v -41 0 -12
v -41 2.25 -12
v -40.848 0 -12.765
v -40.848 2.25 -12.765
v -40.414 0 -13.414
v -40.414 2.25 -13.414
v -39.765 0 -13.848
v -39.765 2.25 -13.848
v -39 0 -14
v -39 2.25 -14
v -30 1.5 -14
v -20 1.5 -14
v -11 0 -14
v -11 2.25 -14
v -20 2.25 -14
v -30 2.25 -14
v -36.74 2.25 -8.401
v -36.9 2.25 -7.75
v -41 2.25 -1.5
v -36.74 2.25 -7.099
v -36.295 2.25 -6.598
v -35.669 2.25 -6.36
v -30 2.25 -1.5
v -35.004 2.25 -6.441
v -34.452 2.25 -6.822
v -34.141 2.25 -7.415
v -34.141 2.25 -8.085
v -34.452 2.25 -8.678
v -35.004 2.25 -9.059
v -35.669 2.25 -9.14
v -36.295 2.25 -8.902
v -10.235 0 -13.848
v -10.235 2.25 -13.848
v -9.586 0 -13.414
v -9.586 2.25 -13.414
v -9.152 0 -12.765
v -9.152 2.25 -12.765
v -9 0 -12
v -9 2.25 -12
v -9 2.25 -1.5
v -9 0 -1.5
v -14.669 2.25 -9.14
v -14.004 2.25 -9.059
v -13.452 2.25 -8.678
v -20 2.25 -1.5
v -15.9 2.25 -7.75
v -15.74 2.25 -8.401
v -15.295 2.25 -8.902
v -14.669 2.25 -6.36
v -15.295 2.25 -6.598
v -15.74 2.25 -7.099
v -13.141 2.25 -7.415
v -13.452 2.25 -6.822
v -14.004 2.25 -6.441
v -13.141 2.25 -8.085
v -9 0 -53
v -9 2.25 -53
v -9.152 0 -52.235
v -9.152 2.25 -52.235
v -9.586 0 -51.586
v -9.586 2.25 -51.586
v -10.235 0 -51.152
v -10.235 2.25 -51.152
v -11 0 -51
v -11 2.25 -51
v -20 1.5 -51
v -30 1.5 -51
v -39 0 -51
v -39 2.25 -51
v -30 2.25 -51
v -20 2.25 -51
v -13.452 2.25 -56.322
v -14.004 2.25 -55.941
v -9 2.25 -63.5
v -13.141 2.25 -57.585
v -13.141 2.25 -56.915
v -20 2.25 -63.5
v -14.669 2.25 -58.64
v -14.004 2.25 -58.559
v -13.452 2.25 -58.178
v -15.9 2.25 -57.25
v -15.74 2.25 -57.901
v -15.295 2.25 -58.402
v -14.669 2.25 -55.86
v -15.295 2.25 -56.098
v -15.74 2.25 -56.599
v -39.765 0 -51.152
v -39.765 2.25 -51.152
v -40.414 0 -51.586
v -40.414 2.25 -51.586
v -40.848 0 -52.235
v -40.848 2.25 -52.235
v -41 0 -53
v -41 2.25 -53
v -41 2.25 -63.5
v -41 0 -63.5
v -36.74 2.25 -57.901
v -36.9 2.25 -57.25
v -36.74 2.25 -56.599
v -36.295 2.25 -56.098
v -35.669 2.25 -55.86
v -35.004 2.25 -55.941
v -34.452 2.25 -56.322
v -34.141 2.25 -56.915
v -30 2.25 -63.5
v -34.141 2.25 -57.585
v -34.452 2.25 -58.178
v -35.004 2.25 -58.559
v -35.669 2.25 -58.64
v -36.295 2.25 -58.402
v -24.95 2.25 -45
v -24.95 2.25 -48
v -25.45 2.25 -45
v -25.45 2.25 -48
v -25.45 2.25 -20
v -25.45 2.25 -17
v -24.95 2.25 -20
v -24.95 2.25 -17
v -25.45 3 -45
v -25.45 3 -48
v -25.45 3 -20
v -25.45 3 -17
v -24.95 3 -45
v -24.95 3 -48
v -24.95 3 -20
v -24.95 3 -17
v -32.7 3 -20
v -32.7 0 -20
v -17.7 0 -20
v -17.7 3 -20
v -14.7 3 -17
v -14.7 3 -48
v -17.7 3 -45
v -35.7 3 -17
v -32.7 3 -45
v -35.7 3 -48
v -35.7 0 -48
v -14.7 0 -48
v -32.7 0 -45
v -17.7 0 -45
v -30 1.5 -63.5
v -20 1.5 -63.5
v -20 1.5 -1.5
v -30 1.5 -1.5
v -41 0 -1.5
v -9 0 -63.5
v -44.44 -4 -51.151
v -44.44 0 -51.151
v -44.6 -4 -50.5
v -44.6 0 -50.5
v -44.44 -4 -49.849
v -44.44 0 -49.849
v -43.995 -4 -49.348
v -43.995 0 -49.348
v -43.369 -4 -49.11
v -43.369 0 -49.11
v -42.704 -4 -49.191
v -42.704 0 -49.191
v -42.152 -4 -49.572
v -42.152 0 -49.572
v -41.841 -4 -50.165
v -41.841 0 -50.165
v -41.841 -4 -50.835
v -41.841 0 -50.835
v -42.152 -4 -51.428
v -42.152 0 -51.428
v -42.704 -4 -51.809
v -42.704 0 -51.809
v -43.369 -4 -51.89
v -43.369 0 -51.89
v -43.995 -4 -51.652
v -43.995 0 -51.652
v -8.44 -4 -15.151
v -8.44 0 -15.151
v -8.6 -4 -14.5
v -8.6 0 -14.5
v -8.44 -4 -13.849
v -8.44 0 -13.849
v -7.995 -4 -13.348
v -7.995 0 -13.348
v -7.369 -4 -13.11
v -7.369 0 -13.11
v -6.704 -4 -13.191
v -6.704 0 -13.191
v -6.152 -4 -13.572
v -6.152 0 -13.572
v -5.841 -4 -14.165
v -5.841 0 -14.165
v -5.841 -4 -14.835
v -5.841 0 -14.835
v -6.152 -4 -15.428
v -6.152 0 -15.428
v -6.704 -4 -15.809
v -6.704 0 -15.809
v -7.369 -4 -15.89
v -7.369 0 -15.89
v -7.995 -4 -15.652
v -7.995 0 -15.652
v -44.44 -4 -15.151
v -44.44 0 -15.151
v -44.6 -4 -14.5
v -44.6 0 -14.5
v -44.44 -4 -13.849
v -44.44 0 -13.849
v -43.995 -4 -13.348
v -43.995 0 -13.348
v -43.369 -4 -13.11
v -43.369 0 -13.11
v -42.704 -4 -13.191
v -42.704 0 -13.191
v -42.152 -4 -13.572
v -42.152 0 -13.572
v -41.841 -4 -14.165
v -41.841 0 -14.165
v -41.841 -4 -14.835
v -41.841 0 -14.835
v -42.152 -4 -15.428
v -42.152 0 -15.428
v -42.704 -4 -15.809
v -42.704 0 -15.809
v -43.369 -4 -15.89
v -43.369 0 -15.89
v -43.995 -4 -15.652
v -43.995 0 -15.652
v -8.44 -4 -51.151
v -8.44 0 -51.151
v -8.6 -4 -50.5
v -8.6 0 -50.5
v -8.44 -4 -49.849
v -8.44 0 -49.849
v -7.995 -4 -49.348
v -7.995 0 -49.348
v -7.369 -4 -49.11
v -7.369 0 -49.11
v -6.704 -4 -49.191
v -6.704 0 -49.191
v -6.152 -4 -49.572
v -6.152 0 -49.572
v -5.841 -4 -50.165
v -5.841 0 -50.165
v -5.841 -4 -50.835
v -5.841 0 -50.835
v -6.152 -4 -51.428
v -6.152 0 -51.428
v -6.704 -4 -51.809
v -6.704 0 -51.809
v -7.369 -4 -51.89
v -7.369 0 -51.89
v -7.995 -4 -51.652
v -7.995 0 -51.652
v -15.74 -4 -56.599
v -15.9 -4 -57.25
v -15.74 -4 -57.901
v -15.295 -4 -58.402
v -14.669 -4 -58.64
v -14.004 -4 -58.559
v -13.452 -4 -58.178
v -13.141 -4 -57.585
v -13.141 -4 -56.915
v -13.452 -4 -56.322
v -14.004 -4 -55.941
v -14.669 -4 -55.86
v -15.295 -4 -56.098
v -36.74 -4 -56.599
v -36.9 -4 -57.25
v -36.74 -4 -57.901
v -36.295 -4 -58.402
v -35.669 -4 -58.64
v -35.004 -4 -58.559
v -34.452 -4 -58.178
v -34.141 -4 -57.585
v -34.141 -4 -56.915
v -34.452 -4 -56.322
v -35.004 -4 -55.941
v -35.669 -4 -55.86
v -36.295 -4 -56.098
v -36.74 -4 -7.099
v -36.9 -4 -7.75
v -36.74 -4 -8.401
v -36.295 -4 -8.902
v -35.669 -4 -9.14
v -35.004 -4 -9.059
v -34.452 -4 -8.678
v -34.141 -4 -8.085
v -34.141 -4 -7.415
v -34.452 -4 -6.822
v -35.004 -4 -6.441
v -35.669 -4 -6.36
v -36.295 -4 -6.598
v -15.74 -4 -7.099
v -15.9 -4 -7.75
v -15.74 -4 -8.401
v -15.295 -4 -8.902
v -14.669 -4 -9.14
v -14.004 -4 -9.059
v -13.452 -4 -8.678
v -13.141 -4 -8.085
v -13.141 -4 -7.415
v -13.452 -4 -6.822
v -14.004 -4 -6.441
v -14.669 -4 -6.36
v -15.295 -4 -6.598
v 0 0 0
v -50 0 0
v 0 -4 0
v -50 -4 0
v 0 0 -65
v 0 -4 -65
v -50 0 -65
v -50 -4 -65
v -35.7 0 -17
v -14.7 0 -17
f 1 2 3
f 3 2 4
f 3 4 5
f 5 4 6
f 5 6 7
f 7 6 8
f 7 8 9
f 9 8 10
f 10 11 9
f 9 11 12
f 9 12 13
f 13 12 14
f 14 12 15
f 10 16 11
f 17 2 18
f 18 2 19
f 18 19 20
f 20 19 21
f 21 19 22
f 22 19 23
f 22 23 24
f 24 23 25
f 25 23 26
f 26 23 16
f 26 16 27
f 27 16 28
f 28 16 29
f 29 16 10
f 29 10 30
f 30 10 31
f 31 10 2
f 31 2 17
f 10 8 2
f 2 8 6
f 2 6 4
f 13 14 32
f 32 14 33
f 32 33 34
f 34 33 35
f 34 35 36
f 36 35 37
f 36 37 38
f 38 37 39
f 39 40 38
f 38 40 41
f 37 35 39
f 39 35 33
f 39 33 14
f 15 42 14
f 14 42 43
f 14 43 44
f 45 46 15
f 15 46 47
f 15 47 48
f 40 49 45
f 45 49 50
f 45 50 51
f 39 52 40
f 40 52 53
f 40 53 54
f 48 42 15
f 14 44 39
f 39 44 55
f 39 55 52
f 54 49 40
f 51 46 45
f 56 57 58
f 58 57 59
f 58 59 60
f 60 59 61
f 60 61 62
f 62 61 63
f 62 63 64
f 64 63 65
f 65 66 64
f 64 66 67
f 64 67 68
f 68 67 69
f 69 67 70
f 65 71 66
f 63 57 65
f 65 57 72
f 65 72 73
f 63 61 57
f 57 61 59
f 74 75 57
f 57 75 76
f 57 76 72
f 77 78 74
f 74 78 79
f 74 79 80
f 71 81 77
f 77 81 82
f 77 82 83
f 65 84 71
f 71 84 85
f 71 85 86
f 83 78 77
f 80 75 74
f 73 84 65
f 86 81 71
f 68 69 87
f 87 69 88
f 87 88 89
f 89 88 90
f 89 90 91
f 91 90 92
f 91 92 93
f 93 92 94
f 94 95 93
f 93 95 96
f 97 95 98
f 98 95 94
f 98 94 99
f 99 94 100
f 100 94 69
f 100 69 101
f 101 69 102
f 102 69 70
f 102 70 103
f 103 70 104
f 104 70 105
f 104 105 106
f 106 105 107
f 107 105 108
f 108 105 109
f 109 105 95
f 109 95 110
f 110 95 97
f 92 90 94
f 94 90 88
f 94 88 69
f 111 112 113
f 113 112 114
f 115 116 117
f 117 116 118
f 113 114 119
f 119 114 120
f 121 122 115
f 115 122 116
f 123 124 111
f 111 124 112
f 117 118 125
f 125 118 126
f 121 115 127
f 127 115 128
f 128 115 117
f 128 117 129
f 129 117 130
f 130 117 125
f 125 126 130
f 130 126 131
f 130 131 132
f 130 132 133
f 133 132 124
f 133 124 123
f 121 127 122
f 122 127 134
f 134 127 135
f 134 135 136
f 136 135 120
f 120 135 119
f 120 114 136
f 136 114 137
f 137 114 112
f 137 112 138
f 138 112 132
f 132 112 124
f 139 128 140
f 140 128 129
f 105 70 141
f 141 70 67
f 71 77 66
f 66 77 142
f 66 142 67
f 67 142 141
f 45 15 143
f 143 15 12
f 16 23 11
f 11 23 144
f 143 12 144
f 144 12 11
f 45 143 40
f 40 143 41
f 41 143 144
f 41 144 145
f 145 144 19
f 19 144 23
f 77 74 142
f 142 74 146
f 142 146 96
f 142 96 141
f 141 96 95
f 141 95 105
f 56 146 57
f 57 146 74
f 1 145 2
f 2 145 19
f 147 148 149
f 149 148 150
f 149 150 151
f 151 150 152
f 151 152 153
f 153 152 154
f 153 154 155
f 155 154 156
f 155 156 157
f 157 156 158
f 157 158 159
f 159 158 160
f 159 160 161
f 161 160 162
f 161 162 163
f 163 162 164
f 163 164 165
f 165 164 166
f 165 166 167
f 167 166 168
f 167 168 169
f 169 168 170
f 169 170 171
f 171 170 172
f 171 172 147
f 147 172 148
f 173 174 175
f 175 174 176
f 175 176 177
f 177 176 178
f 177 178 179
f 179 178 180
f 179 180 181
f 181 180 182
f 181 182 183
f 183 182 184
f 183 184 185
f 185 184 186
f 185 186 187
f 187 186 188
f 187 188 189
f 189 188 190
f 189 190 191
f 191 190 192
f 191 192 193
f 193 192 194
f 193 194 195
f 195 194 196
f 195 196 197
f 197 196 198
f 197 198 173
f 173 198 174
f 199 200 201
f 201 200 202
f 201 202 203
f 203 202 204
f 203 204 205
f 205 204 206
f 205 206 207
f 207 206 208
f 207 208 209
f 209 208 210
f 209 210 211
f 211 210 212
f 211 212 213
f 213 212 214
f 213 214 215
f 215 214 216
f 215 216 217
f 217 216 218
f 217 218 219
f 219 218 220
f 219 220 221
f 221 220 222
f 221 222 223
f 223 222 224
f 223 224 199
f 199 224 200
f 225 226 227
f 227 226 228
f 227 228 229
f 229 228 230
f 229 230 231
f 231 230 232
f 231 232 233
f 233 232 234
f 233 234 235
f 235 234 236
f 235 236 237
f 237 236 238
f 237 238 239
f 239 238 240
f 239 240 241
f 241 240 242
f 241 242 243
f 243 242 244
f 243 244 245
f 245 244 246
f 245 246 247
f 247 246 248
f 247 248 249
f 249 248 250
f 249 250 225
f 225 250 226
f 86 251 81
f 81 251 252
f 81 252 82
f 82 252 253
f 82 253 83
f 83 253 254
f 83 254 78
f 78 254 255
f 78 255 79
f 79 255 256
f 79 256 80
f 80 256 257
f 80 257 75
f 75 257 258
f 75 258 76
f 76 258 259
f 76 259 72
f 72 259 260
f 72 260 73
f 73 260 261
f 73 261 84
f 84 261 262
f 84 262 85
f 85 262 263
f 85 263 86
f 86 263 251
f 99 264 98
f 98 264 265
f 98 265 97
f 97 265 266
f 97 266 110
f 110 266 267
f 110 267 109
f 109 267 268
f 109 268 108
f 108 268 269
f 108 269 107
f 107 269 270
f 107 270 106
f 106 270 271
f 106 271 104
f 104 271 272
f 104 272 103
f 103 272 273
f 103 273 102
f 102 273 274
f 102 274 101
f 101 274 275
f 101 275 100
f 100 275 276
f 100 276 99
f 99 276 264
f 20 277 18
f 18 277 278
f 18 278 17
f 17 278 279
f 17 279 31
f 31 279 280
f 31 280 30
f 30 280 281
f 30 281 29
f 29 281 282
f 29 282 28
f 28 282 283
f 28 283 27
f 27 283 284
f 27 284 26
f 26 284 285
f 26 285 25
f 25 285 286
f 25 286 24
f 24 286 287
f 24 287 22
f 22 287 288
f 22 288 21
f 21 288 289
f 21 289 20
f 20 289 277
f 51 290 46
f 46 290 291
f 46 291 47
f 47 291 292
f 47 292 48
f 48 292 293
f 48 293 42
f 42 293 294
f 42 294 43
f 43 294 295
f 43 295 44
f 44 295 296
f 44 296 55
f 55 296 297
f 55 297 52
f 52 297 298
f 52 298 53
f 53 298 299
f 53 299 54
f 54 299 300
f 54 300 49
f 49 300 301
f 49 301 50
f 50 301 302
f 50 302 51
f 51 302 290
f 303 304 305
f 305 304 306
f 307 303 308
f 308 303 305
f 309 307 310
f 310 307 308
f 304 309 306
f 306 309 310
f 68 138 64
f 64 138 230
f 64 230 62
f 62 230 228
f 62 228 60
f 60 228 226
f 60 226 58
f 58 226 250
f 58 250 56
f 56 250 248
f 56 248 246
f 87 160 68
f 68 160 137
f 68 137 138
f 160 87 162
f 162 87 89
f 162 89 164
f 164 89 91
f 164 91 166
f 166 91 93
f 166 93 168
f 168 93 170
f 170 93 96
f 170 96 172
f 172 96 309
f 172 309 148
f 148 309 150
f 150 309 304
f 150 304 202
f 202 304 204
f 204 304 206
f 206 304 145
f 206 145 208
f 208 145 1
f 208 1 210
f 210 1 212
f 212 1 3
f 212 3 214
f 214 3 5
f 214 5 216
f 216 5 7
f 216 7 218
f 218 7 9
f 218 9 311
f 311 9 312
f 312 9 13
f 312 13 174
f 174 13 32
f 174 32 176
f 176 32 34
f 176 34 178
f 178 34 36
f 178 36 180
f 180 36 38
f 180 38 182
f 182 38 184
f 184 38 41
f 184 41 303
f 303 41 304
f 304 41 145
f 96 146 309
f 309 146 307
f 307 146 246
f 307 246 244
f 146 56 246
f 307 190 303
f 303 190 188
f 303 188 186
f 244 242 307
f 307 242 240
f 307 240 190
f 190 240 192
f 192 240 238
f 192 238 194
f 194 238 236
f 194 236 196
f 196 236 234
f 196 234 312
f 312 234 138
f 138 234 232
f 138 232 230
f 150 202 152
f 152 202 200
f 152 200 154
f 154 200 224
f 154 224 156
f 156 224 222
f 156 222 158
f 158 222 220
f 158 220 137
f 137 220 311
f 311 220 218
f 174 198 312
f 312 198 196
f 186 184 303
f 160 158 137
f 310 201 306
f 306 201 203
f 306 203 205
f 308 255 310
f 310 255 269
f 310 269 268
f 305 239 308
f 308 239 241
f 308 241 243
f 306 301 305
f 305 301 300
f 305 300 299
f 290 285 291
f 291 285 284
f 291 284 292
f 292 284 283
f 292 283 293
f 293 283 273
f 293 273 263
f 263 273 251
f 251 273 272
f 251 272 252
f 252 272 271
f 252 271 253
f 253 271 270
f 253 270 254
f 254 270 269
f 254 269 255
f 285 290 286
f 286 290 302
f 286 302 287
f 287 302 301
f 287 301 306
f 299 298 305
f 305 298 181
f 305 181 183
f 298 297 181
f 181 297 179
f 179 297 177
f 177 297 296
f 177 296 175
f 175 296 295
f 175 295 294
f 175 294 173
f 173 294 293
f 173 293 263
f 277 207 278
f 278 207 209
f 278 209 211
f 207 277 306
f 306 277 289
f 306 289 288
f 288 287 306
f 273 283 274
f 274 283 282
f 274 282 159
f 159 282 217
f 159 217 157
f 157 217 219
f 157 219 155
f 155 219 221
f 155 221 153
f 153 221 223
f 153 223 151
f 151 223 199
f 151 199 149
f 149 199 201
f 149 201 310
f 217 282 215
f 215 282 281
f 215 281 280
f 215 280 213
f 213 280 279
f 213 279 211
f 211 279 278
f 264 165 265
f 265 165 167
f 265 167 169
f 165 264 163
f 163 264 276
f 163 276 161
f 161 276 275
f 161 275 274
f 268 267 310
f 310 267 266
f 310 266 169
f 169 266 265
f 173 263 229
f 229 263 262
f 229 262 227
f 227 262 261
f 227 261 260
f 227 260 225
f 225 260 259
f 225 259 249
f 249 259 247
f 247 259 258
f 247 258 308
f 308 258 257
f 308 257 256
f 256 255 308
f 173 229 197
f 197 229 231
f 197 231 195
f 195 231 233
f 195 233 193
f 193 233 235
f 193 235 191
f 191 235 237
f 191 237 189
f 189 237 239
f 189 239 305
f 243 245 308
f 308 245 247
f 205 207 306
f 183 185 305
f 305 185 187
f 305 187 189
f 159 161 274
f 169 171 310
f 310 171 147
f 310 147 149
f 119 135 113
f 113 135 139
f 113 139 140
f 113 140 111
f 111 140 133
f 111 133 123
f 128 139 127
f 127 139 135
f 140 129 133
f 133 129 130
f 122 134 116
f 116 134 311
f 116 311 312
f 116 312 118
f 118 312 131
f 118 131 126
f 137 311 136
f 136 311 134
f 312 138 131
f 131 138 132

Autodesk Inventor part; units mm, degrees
ref_plane "YZ Plane" through (0, 0, 0) normal (1, 0, 0) x (0, 1, 0)
ref_plane "XZ Plane" through (0, 0, 0) normal (0, 1, 0) x (-1, 0, 0)
ref_plane "XY Plane" through (0, 0, 0) normal (0, 0, 1) x (1, 0, 0)
sketch "Boceto1" plane through (0, 0, 0) normal (0, 1, 0) x (-1, 0, 0)
  line L0 (0, 0) -> (50, 0)
  line L1 (50, 0) -> (50, -65)
  line L2 (50, -65) -> (0, -65)
  line L3 (0, -65) -> (0, 0)
  line L4 (17.7, -45) -> (32.7, -45)
  line L5 (32.7, -45) -> (32.7, -20)
  line L6 (32.7, -20) -> (17.7, -20)
  line L7 (17.7, -20) -> (17.7, -45)
  line L8 (17.7, -45) -> (32.7, -20) construction
  line L9 (32.7, -45) -> (17.7, -20) construction
  line L10 (35.7, -17) -> (35.7, -48)
  line L11 (35.7, -48) -> (14.7, -48)
  line L12 (14.7, -48) -> (14.7, -17)
  line L13 (14.7, -17) -> (35.7, -17)
  line L14 (41, -1.5) -> (9, -1.5)
  line L15 (9, -1.5) -> (9, -14)
  line L16 (9, -14) -> (41, -14)
  line L17 (41, -14) -> (41, -1.5)
  line L18 (32.7, -32.5) -> (17.7, -32.5) construction
  line L19 (41, -7.75) -> (35.5, -7.75) construction
  line L20 (35.5, -7.75) -> (14.5, -7.75) construction
  line L21 (14.5, -7.75) -> (9, -7.75) construction
  circle A0 centre (35.5, -7.75) radius 1.4
  circle A1 centre (14.5, -7.75) radius 1.4
  line L22 (41, -63.5) -> (9, -63.5)
  line L23 (9, -63.5) -> (9, -51)
  line L24 (9, -51) -> (41, -51)
  line L25 (41, -51) -> (41, -63.5)
  circle A2 centre (35.5, -57.25) radius 1.4
  circle A3 centre (14.5, -57.25) radius 1.4
  line L26 (50, -32.5) -> (43.2, -32.5) construction
  line L27 (0, -32.5) -> (6.8, -32.5)
  line L28 (45.9347, 0) -> (45.9347, -14) construction
  line L29 (43.2, -32.5) -> (43.2, -14.5) construction
  line L30 (43.2, -14.5) -> (50, -14.5) construction
  circle A4 centre (43.2, -14.5) radius 1.4
  line L31 (25.2, -20) -> (25.2, -45) construction
  circle A5 centre (7.2, -14.5) radius 1.4
  circle A6 centre (35.5, -57.25) radius 1.4
  circle A7 centre (43.2, -50.5) radius 1.4
  circle A8 centre (7.2, -50.5) radius 1.4
  line L32 (35.5, -7.75) -> (14.5, -7.75)
  point P0 (25.2, -32.5)
  point P1 (25, -14)
  point P2 (25.2, -17)
  dimension "d0" = 65
  dimension "d1" = 50
  dimension "d2" = 25
  dimension "d3" = 15
  dimension "d4" = 3
  dimension "d5" = 12.5
  dimension "d6" = 32
  dimension "d7" = 3
  dimension "d8" = 5.5
  dimension "d9" = 5.5
  dimension "d10" = 2.8
  dimension "d11" = 2.8
  dimension "d12" = 6.8
  dimension "d13" = 6.8
  dimension "d14" = 14
  dimension "d15" = 2.8
  dimension "d30" = 36
  dimension "d31" = 36
  dimension "d32" = 1.5
extrude "Extrusión1" add sketch "Boceto1" along normal blind 3 contours L10 L11 L12 L13
extrude "Extrusión2" add sketch "Boceto1" against normal blind 4 contours L0 L1 L2 L3 | L17 L16 L15 L14 | L22 L23 L24 L25
extrude "Extrusión3" add sketch "Boceto1" along normal blind 2.25 contours L17 L16 L15 L14 | L22 L23 L24 L25
sketch "Boceto2" plane through (0, 2.25, 0) normal (0, 1, 0) x (1, 0, 0)
  line L0 (-41, 1.5) -> (-9, 1.5) projected
  line L1 (-25, 1.5) -> (-25, 14)
  line L2 (-9, 14) -> (-41, 14) projected
  line L3 (-20, 1.5) -> (-30, 1.5)
  line L4 (-30, 1.5) -> (-30, 14)
  line L5 (-30, 14) -> (-20, 14)
  line L6 (-20, 14) -> (-20, 1.5)
  line L7 (-20, 1.5) -> (-30, 14) construction
  line L8 (-30, 1.5) -> (-20, 14) construction
  line L9 (-32.7, 32.5) -> (-17.7, 32.5) construction
  line L10 (-41, 63.5) -> (-9, 63.5)
  line L11 (-9, 51) -> (-41, 51)
  line L12 (-30, 63.5) -> (-30, 51)
  line L13 (-20, 51) -> (-20, 63.5)
  point P0 (0, 0)
  point P1 (-25, 7.75)
  dimension "d22" = 10
extrude "Extrusión4" cut sketch "Boceto2" against normal blind 0.75
extrude "Extrusión5" add sketch "Boceto1" against normal blind 4 contours L7 L6 L5 L4 | L10 L11 L12 L13
sketch "Boceto3" plane through (0, 3, 0) normal (0, 1, 0) x (1, 0, 0)
  line L0 (-25.2, 20) -> (-25.2, 45) construction
  line L1 (-35.7, 17) -> (-14.7, 17) projected
  line L2 (-25.2, 17) -> (-25.2, 48)
  line L3 (-14.7, 48) -> (-35.7, 48) projected
  line L4 (-24.95, 17) -> (-25.45, 17)
  line L5 (-25.45, 17) -> (-25.45, 48)
  line L6 (-25.45, 48) -> (-24.95, 48)
  line L7 (-24.95, 48) -> (-24.95, 17)
  line L8 (-24.95, 17) -> (-25.45, 48) construction
  line L9 (-25.45, 17) -> (-24.95, 48) construction
  point P0 (0, 0)
  point P1 (-25.2, 32.5)
  point P2 (-24.95, 17)
  point P3 (-24.95, 48)
  point P4 (-25.45, 17)
  dimension "d27" = 0.5
extrude "Extrusión6" cut sketch "Boceto3" against normal blind 0.75
sketch "Boceto4" plane through (-41, 0, -1.5) normal (0, 0, 1) x (1, 0, 0)
  line L0 (16.05, 2.25) -> (15.55, 2.25) projected
  line L1 (21, 1.5) -> (11, 1.5) projected
  line L2 (-9, 0) -> (41, 0) projected
  line L3 (15.55, 2.25) -> (15.55, 3) projected
fillet "Empalme1" radius 2 4 edges at (-41, 1.125, -51) (-9, 1.125, -51) (-9, 1.125, -14) (-41, 1.125, -14)
equation "\"d9\" = d8"
equation "\"d13\" = d12"
properties part number "Molde 1FBR 0.75mm"
